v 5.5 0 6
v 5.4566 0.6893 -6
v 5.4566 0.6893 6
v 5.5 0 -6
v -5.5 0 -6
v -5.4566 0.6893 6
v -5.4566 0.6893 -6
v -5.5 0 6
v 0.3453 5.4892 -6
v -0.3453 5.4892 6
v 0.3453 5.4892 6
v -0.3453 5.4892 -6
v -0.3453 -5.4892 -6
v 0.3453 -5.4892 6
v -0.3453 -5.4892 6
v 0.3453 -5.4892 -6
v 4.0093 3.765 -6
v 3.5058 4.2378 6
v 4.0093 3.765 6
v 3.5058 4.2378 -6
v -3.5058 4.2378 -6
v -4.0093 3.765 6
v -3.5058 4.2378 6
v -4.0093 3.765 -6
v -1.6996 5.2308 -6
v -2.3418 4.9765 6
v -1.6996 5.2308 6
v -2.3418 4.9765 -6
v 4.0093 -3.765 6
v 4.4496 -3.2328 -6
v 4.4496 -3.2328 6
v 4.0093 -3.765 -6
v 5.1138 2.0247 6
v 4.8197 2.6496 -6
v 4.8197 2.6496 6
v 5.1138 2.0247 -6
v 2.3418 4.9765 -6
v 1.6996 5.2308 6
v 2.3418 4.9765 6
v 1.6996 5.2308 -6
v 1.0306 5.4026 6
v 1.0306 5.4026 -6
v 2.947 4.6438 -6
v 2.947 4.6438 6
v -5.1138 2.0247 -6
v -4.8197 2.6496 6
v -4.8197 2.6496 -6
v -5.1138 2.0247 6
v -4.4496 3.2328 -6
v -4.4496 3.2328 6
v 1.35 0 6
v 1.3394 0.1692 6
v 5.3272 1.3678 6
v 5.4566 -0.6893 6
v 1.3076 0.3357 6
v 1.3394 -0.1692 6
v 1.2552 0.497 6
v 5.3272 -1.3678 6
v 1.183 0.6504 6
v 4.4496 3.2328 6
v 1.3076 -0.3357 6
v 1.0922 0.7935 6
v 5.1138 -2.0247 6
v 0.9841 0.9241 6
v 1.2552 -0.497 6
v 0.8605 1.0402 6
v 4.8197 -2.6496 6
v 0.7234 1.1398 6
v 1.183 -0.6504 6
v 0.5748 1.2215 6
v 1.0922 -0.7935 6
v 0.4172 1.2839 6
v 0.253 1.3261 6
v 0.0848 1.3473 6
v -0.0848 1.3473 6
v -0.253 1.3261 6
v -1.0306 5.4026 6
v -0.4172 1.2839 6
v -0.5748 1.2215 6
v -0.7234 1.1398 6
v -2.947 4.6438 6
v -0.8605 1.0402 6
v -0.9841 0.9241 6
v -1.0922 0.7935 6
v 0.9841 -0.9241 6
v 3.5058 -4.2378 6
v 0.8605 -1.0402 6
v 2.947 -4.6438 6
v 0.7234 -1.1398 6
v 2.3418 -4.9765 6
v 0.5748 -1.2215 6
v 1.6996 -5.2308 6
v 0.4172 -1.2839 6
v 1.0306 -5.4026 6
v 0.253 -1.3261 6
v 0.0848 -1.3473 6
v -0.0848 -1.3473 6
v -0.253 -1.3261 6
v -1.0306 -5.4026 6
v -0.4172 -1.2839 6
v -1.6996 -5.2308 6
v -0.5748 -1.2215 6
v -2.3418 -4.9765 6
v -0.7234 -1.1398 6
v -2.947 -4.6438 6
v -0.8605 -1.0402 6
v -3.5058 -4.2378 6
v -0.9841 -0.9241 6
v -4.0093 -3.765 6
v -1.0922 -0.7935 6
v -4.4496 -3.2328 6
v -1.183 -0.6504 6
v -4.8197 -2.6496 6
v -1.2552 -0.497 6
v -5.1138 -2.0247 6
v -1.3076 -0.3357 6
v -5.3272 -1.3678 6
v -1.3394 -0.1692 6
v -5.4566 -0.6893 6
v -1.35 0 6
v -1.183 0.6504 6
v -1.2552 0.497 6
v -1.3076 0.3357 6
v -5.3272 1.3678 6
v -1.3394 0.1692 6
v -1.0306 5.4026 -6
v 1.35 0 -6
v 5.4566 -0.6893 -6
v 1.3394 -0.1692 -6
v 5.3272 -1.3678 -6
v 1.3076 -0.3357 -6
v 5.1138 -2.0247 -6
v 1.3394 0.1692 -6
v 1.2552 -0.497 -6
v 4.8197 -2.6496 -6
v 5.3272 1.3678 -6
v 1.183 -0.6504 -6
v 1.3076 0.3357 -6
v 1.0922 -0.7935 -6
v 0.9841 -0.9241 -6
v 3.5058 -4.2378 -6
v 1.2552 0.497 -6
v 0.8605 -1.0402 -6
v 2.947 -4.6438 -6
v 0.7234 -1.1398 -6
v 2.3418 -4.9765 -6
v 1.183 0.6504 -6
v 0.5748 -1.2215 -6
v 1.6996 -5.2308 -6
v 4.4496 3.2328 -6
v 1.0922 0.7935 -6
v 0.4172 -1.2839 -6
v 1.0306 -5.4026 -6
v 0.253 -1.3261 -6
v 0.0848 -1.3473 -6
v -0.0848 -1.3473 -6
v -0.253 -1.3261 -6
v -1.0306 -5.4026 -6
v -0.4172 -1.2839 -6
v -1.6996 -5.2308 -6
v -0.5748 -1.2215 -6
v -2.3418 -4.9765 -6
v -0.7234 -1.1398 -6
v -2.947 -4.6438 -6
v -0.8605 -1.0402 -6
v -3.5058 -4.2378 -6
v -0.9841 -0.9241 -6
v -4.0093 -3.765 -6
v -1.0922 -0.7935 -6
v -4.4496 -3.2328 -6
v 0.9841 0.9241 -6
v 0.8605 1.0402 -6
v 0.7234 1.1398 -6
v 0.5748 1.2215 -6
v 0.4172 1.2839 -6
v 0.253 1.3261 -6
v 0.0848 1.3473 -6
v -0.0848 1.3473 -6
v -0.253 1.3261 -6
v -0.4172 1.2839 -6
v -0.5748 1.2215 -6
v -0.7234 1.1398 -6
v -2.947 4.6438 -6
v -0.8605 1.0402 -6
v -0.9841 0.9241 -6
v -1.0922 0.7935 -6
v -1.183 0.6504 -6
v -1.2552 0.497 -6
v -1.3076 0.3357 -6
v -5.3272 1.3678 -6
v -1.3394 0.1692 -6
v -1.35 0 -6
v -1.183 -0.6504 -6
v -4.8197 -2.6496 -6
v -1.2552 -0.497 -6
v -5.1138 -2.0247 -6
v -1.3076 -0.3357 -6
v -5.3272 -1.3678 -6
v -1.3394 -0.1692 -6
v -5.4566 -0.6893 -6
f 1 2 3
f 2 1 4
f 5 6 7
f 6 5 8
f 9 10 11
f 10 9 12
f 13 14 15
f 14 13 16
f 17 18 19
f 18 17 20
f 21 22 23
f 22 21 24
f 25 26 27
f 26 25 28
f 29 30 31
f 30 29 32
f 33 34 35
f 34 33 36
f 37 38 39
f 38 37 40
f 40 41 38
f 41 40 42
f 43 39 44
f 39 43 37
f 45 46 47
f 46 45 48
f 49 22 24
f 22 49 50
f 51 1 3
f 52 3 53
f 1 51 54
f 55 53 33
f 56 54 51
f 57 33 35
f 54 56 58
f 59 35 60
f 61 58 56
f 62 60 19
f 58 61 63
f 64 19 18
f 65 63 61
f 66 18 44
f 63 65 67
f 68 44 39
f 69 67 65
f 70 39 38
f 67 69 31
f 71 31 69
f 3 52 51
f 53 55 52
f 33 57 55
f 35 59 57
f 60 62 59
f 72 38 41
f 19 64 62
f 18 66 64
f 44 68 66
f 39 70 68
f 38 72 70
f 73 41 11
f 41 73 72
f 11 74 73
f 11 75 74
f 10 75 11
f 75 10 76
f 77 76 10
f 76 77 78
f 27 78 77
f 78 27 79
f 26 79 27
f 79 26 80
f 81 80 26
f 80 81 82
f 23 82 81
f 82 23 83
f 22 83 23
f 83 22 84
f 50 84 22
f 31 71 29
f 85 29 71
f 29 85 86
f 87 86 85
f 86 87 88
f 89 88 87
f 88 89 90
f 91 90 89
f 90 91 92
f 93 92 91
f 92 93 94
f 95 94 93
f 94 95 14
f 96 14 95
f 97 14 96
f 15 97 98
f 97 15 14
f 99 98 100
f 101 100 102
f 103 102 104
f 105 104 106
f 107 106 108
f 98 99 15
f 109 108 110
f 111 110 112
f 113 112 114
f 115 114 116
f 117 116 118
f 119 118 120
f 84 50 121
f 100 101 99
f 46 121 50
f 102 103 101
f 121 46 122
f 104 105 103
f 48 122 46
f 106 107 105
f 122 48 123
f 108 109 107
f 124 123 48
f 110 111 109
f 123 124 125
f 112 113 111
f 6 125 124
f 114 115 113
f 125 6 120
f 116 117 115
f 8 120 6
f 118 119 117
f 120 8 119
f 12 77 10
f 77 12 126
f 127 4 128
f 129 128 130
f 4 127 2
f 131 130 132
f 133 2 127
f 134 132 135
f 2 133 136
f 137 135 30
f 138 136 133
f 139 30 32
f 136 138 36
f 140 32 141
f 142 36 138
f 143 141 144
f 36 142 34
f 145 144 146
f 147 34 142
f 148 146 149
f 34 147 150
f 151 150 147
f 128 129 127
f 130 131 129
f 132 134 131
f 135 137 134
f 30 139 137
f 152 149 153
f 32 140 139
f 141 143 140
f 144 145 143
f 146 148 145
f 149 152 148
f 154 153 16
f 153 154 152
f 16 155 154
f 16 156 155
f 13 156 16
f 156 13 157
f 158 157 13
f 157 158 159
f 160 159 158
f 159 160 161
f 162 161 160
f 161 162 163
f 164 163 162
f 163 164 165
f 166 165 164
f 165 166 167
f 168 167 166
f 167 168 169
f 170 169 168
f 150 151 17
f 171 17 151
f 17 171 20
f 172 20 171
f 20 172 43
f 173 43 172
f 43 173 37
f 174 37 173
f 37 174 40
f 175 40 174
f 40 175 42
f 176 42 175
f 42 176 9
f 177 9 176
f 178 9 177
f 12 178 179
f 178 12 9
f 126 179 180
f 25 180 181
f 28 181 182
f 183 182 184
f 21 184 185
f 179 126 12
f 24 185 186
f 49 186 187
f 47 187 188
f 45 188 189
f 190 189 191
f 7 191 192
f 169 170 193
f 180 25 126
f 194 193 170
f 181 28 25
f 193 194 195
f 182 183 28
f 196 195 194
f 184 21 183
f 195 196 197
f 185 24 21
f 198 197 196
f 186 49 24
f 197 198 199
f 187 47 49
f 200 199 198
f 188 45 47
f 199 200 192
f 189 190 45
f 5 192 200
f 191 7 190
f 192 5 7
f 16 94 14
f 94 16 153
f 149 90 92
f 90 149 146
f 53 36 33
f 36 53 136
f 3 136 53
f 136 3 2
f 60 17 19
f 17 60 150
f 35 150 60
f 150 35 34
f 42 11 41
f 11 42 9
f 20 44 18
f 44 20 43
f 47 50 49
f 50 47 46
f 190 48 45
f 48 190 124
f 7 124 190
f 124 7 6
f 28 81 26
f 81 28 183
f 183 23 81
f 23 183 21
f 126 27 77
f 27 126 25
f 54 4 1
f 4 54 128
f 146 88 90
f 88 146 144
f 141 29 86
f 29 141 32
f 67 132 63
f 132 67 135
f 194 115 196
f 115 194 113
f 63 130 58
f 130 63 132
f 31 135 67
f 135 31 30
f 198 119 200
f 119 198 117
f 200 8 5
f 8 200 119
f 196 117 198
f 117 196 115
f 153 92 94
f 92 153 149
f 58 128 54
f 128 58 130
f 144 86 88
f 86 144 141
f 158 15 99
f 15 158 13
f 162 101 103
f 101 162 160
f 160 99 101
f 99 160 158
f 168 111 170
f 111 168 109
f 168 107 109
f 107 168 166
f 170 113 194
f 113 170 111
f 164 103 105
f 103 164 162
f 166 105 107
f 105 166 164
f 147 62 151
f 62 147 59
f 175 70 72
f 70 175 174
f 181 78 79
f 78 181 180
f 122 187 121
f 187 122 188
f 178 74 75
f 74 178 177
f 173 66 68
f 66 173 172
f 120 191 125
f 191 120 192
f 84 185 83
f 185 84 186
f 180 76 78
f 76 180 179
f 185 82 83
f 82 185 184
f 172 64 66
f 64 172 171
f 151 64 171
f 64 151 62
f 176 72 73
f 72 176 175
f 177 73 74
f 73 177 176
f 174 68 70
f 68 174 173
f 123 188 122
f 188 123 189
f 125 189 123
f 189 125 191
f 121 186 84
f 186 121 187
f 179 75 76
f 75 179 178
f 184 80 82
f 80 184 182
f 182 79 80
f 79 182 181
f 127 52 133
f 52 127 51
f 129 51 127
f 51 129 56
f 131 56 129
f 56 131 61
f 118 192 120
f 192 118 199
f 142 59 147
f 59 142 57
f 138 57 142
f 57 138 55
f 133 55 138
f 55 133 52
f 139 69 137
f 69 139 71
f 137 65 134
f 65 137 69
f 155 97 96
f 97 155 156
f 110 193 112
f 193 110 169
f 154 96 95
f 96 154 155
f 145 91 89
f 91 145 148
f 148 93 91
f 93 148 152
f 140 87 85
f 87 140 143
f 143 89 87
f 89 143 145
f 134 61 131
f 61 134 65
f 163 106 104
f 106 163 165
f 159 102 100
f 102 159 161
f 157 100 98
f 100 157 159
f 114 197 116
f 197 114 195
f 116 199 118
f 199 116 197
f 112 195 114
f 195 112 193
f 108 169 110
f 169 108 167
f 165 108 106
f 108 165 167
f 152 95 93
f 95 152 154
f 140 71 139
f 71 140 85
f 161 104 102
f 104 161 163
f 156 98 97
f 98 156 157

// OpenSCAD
$fn = 50;


difference() {
	union() {
		translate(v = [0, 0, -6.0000000000]) {
			cylinder(h = 12, r = 5.5000000000);
		}
	}
	union() {
		translate(v = [0, 0, -100.0000000000]) {
			cylinder(h = 200, r = 1.3500000000);
		}
	}
}
